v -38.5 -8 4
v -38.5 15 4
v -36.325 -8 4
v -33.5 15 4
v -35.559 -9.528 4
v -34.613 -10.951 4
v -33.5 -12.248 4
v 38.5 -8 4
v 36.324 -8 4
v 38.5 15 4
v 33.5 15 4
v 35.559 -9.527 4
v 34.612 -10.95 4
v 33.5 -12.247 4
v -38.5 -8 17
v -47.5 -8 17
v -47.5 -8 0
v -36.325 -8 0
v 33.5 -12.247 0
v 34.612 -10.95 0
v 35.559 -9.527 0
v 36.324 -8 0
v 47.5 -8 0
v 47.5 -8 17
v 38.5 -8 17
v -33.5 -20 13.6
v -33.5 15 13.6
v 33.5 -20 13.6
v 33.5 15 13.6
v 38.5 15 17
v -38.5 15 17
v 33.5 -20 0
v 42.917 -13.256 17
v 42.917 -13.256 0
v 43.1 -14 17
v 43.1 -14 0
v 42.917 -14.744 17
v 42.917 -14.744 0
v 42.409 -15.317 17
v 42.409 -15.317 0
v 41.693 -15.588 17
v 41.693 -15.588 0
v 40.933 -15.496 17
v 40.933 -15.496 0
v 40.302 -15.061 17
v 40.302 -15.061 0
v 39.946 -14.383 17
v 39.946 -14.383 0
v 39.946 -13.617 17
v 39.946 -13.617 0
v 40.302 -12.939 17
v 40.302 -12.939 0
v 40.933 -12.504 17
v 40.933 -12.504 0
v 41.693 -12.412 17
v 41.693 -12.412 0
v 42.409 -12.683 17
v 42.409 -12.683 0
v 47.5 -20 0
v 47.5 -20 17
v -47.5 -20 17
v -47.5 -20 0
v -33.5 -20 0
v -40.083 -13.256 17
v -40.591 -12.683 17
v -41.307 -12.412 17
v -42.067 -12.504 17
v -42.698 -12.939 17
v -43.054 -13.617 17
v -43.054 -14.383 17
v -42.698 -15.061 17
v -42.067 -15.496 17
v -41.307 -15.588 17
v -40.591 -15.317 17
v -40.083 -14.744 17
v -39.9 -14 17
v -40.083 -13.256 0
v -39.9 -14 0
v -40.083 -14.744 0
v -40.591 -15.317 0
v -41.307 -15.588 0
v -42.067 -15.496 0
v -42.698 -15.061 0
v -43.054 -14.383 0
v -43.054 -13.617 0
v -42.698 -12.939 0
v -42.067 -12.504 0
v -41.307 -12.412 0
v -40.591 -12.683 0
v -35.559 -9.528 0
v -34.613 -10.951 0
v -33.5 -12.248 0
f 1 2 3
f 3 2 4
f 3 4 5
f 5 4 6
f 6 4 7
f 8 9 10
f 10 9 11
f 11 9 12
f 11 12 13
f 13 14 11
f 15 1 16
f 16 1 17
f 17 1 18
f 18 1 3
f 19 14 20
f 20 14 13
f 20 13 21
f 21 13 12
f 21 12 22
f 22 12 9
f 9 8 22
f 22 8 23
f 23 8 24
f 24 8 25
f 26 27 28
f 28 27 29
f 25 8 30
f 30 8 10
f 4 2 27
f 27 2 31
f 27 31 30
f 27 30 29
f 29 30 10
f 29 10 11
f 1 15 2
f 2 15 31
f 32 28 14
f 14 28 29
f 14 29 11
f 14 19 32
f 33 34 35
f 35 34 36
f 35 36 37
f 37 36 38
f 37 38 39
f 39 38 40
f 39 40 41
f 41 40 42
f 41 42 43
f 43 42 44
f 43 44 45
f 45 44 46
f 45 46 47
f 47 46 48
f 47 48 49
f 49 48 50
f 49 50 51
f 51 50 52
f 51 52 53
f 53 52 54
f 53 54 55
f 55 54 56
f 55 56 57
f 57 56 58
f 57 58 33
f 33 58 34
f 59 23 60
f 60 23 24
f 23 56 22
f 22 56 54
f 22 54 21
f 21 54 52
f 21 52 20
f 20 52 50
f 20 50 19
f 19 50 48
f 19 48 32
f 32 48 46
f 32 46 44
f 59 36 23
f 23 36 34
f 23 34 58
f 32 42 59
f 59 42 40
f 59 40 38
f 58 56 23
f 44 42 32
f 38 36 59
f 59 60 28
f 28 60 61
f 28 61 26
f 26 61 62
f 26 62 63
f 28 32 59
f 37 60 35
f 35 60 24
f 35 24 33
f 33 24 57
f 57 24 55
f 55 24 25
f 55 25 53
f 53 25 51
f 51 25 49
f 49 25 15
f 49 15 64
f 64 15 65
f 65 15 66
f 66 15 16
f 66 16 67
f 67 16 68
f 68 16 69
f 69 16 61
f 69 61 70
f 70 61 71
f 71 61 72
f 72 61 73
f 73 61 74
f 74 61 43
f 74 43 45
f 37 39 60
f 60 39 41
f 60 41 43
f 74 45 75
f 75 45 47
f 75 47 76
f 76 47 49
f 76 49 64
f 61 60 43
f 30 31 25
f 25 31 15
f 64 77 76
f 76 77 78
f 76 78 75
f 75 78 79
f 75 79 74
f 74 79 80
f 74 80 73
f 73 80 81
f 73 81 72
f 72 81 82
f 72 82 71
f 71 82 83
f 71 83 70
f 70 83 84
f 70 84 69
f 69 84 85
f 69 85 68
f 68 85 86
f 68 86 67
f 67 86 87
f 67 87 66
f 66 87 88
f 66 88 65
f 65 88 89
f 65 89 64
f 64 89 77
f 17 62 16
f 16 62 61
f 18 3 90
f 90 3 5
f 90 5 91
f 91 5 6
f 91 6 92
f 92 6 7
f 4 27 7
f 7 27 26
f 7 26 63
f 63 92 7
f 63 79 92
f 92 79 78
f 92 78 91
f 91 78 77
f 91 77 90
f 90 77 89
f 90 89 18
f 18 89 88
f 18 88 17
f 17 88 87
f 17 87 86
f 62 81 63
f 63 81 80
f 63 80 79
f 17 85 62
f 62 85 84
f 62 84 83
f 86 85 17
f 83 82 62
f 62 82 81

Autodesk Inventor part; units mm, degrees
ref_plane "YZ Plane" through (0, 0, 0) normal (1, 0, 0) x (0, 1, 0)
ref_plane "XZ Plane" through (0, 0, 0) normal (0, 1, 0) x (-1, 0, 0)
sketch "Boceto1" plane through (0, 0, 0) normal (0, 0, 1) x (1, 0, 0)
  line L0 (9.8963, 1.0011) -> (-9.8944, 1.0011) projected
  arc A0 (-33.0611, -12.6806) -> (-9.8944, 1.0011) centre (-23.4499, -2.5004) ccw projected
  line L1 (-33.0611, -12.6806) -> (-33.2, -12.6806) projected
  line L2 (-33.2, -12.6806) -> (-33.2, -12.5477) projected
  arc A1 (-37.0054, 1.0011) -> (-33.2, -12.5477) centre (-23.4499, -2.5004) ccw projected
  line L3 (-37.0054, 1.0011) -> (-47.5, 1.0011) projected
  line L4 (-47.5, 1.0011) -> (-47.5, -20) projected
  line L5 (-47.5, -20) -> (47.5, -20) projected
  line L6 (47.5, -20) -> (47.5, 1.0011) projected
  line L7 (47.5, 1.0011) -> (37.0052, 1.0011) projected
  arc A2 (33.2, -12.5466) -> (37.0052, 1.0011) centre (23.4507, -2.5001) ccw projected
  line L8 (33.2, -12.5466) -> (33.2, -12.6806) projected
  line L9 (33.2, -12.6806) -> (33.06, -12.6806) projected
  arc A3 (9.8963, 1.0011) -> (33.06, -12.6806) centre (23.4507, -2.5001) ccw projected
  circle A4 centre (40.9504, -2.4989) radius 2.1 projected
  circle A5 centre (5.9501, -2.5002) radius 2.1 projected
  circle A6 centre (-5.9495, -2.4989) radius 2.1 projected
  circle A7 centre (-40.9494, -2.4994) radius 2.1 projected
  line L10 (47.5, -20) -> (41.5, -20)
  line L11 (41.5, -20) -> (41.5, -14)
  line L12 (41.5, -14) -> (47.5, -14)
  line L13 (47.5, -14) -> (47.5, -20)
  circle A8 centre (41.5, -14) radius 1.6
  line L14 (-47.5, -20) -> (-41.5, -20)
  line L15 (-41.5, -20) -> (-41.5, -14)
  line L16 (-41.5, -14) -> (-47.5, -14)
  line L17 (-47.5, -14) -> (-47.5, -20)
  circle A9 centre (-41.5, -14) radius 1.6
  line L18 (47.5, -20) -> (33.5, -20)
  line L19 (33.5, -20) -> (33.5, -8)
  line L20 (33.5, -8) -> (47.5, -8)
  line L21 (47.5, -8) -> (47.5, -20)
  line L22 (-47.5, -20) -> (-33.5, -20)
  line L23 (-33.5, -20) -> (-33.5, -8)
  line L24 (-33.5, -8) -> (-47.5, -8)
  line L25 (-47.5, -8) -> (-47.5, -20)
  line L26 (33.2, -20.6806) -> (-33.2, -20.6806) projected
  line L27 (33.2, -12.6806) -> (33.2, -20.6806) projected
  line L28 (33.2, -12.6806) -> (30.95, -12.6806) projected
  arc A10 (25.95, -17.6806) -> (30.95, -12.6806) centre (25.95, -12.6806) ccw projected
  line L29 (25.95, -17.6806) -> (-25.95, -17.6806) projected
  arc A11 (-30.95, -12.6806) -> (-25.95, -17.6806) centre (-25.95, -12.6806) ccw projected
  line L30 (-33.2, -12.6806) -> (-30.95, -12.6806) projected
  line L31 (-33.2, -20.6806) -> (-33.2, -12.6806) projected
  line L32 (33.2, 62.3194) -> (33.2, -12.6806)
  line L33 (-33.2, -12.6806) -> (-33.2, 62.3194)
  circle A12 centre (-41.5, -14) radius 2.1 projected
  circle A13 centre (41.5, -14) radius 2.1 projected
  point P0 (0, 0)
  point P1 (47.5, -8)
  point P2 (33.5, -20)
  point P3 (-33.5, -20)
  point P4 (-47.5, -8)
  point P5 (-33.5, -12.2476)
  point P6 (-36.3249, -8)
  point P7 (36.3244, -8)
  point P8 (33.5, -12.2466)
  dimension "d0" = 6
  dimension "d1" = 6
  dimension "d2" = 3.2
  dimension "d3" = 6
  dimension "d4" = 6
  dimension "d5" = 3.2
  dimension "d6" = 14
  dimension "d7" = 12
  dimension "d8" = 14
  dimension "d9" = 12
ref_plane "Plano de trabajo1" through (-47.5, -94.8095, 26) normal (0, 0, 1) x (1, 0.0000001, 0)
extrude "Extrusión1" add sketch "Boceto1" along normal blind 17 contours A2 L20 L6 L12 A13 L11 L5 L19 | L23 L5 L15 A12 L16 L4 L24 A1 | L11 A13 L12 L6 L5 | L5 L4 L16 A12 L15 | A13 L12 A8 L11 | L11 A8 L12 A13 | A12 L16 A9 L15 | L15 A9 L16 A12
sketch "Boceto2" plane through (33.5, -20, 0) normal (-1, 0, 0) x (0, 0, 1)
  line L0 (0, 7.7534) -> (0, 0) projected
  line L1 (0, 0) -> (17, 0) projected
  line L2 (17, 7.7534) -> (17, 0) projected
  line L3 (0, 7.7534) -> (17, 7.7534) projected
  line L4 (13, 7.3194) -> (13, -0.6806) projected
  line L5 (13.6, 7.7534) -> (13.6, -0.6806)
  line L6 (0, 12) -> (0, 7.7534) projected
  line L7 (0, 7.7534) -> (17, 7.7534) projected
  line L8 (17, 12) -> (17, 7.7534) projected
  line L9 (0, 12) -> (17, 12) projected
  line L10 (13.6, 0) -> (17, 0)
  line L11 (17, 0) -> (17, 35)
  line L12 (17, 35) -> (13.6, 35)
  line L13 (13.6, 35) -> (13.6, 0)
  point P0 (0, 20)
  point P1 (17, 7.7534)
  point P2 (17, 12)
  point P3 (13.6, 12)
  point P4 (17, 12)
  point P5 (0, 7.7534)
  point P6 (17, 7.7534)
  point P7 (17, 7.7534)
  point P8 (13.6, 7.7534)
  point P9 (0, 7.7534)
  point P10 (17, 7.7534)
  point P11 (0, 7.7534)
  dimension "d12" = 0.6
  dimension "d13" = 35
extrude "Extrusión2" add sketch "Boceto2" along normal blind 72 and the other way blind 5 contours L13 L9 L8 L3 | L3 L2 L1 L5 | L13 L12 L11 L9
sketch "Boceto3" plane through (33.5, -20, 13.6) normal (0, 0, -1) x (-1, 0, 0)
  line L0 (67, 7.7524) -> (67, 0) projected
  arc A0 (67, 7.7524) -> (69.8249, 12) centre (56.9499, 17.4996) ccw projected
  line L1 (72, 12) -> (69.8249, 12) projected
  line L2 (72, 35) -> (72, 12) projected
  line L3 (72, 35) -> (-5, 35) projected
  line L4 (-5, 12) -> (-5, 35) projected
  line L5 (-2.8244, 12) -> (-5, 12) projected
  arc A1 (-2.8244, 12) -> (0, 7.7534) centre (10.0493, 17.4999) ccw projected
  line L6 (0, 0) -> (0, 7.7534) projected
  line L7 (0, 0) -> (67, 0) projected
  line L8 (0.3, 7.3194) -> (0.3, 82.3194) projected
  line L9 (0, 7.7534) -> (0.3, 7.7534)
  line L10 (66.7, 7.3194) -> (66.7, 82.3194) projected
  line L11 (67, 7.7524) -> (67, 0) projected
  line L12 (67, 7.7524) -> (67, 36)
  line L13 (0, 7.7534) -> (0, 35.331)
  point P0 (33.5, 20)
  point P1 (0.3, 35)
  point P2 (67, 35)
  point P3 (0, 35)
extrude "Extrusión3" add sketch "Boceto3" along normal blind 9.6 contours L12 L3 L2 L1 A0 | A1 L5 L4 L3 L13
properties part number "Tapadera cremallera"
